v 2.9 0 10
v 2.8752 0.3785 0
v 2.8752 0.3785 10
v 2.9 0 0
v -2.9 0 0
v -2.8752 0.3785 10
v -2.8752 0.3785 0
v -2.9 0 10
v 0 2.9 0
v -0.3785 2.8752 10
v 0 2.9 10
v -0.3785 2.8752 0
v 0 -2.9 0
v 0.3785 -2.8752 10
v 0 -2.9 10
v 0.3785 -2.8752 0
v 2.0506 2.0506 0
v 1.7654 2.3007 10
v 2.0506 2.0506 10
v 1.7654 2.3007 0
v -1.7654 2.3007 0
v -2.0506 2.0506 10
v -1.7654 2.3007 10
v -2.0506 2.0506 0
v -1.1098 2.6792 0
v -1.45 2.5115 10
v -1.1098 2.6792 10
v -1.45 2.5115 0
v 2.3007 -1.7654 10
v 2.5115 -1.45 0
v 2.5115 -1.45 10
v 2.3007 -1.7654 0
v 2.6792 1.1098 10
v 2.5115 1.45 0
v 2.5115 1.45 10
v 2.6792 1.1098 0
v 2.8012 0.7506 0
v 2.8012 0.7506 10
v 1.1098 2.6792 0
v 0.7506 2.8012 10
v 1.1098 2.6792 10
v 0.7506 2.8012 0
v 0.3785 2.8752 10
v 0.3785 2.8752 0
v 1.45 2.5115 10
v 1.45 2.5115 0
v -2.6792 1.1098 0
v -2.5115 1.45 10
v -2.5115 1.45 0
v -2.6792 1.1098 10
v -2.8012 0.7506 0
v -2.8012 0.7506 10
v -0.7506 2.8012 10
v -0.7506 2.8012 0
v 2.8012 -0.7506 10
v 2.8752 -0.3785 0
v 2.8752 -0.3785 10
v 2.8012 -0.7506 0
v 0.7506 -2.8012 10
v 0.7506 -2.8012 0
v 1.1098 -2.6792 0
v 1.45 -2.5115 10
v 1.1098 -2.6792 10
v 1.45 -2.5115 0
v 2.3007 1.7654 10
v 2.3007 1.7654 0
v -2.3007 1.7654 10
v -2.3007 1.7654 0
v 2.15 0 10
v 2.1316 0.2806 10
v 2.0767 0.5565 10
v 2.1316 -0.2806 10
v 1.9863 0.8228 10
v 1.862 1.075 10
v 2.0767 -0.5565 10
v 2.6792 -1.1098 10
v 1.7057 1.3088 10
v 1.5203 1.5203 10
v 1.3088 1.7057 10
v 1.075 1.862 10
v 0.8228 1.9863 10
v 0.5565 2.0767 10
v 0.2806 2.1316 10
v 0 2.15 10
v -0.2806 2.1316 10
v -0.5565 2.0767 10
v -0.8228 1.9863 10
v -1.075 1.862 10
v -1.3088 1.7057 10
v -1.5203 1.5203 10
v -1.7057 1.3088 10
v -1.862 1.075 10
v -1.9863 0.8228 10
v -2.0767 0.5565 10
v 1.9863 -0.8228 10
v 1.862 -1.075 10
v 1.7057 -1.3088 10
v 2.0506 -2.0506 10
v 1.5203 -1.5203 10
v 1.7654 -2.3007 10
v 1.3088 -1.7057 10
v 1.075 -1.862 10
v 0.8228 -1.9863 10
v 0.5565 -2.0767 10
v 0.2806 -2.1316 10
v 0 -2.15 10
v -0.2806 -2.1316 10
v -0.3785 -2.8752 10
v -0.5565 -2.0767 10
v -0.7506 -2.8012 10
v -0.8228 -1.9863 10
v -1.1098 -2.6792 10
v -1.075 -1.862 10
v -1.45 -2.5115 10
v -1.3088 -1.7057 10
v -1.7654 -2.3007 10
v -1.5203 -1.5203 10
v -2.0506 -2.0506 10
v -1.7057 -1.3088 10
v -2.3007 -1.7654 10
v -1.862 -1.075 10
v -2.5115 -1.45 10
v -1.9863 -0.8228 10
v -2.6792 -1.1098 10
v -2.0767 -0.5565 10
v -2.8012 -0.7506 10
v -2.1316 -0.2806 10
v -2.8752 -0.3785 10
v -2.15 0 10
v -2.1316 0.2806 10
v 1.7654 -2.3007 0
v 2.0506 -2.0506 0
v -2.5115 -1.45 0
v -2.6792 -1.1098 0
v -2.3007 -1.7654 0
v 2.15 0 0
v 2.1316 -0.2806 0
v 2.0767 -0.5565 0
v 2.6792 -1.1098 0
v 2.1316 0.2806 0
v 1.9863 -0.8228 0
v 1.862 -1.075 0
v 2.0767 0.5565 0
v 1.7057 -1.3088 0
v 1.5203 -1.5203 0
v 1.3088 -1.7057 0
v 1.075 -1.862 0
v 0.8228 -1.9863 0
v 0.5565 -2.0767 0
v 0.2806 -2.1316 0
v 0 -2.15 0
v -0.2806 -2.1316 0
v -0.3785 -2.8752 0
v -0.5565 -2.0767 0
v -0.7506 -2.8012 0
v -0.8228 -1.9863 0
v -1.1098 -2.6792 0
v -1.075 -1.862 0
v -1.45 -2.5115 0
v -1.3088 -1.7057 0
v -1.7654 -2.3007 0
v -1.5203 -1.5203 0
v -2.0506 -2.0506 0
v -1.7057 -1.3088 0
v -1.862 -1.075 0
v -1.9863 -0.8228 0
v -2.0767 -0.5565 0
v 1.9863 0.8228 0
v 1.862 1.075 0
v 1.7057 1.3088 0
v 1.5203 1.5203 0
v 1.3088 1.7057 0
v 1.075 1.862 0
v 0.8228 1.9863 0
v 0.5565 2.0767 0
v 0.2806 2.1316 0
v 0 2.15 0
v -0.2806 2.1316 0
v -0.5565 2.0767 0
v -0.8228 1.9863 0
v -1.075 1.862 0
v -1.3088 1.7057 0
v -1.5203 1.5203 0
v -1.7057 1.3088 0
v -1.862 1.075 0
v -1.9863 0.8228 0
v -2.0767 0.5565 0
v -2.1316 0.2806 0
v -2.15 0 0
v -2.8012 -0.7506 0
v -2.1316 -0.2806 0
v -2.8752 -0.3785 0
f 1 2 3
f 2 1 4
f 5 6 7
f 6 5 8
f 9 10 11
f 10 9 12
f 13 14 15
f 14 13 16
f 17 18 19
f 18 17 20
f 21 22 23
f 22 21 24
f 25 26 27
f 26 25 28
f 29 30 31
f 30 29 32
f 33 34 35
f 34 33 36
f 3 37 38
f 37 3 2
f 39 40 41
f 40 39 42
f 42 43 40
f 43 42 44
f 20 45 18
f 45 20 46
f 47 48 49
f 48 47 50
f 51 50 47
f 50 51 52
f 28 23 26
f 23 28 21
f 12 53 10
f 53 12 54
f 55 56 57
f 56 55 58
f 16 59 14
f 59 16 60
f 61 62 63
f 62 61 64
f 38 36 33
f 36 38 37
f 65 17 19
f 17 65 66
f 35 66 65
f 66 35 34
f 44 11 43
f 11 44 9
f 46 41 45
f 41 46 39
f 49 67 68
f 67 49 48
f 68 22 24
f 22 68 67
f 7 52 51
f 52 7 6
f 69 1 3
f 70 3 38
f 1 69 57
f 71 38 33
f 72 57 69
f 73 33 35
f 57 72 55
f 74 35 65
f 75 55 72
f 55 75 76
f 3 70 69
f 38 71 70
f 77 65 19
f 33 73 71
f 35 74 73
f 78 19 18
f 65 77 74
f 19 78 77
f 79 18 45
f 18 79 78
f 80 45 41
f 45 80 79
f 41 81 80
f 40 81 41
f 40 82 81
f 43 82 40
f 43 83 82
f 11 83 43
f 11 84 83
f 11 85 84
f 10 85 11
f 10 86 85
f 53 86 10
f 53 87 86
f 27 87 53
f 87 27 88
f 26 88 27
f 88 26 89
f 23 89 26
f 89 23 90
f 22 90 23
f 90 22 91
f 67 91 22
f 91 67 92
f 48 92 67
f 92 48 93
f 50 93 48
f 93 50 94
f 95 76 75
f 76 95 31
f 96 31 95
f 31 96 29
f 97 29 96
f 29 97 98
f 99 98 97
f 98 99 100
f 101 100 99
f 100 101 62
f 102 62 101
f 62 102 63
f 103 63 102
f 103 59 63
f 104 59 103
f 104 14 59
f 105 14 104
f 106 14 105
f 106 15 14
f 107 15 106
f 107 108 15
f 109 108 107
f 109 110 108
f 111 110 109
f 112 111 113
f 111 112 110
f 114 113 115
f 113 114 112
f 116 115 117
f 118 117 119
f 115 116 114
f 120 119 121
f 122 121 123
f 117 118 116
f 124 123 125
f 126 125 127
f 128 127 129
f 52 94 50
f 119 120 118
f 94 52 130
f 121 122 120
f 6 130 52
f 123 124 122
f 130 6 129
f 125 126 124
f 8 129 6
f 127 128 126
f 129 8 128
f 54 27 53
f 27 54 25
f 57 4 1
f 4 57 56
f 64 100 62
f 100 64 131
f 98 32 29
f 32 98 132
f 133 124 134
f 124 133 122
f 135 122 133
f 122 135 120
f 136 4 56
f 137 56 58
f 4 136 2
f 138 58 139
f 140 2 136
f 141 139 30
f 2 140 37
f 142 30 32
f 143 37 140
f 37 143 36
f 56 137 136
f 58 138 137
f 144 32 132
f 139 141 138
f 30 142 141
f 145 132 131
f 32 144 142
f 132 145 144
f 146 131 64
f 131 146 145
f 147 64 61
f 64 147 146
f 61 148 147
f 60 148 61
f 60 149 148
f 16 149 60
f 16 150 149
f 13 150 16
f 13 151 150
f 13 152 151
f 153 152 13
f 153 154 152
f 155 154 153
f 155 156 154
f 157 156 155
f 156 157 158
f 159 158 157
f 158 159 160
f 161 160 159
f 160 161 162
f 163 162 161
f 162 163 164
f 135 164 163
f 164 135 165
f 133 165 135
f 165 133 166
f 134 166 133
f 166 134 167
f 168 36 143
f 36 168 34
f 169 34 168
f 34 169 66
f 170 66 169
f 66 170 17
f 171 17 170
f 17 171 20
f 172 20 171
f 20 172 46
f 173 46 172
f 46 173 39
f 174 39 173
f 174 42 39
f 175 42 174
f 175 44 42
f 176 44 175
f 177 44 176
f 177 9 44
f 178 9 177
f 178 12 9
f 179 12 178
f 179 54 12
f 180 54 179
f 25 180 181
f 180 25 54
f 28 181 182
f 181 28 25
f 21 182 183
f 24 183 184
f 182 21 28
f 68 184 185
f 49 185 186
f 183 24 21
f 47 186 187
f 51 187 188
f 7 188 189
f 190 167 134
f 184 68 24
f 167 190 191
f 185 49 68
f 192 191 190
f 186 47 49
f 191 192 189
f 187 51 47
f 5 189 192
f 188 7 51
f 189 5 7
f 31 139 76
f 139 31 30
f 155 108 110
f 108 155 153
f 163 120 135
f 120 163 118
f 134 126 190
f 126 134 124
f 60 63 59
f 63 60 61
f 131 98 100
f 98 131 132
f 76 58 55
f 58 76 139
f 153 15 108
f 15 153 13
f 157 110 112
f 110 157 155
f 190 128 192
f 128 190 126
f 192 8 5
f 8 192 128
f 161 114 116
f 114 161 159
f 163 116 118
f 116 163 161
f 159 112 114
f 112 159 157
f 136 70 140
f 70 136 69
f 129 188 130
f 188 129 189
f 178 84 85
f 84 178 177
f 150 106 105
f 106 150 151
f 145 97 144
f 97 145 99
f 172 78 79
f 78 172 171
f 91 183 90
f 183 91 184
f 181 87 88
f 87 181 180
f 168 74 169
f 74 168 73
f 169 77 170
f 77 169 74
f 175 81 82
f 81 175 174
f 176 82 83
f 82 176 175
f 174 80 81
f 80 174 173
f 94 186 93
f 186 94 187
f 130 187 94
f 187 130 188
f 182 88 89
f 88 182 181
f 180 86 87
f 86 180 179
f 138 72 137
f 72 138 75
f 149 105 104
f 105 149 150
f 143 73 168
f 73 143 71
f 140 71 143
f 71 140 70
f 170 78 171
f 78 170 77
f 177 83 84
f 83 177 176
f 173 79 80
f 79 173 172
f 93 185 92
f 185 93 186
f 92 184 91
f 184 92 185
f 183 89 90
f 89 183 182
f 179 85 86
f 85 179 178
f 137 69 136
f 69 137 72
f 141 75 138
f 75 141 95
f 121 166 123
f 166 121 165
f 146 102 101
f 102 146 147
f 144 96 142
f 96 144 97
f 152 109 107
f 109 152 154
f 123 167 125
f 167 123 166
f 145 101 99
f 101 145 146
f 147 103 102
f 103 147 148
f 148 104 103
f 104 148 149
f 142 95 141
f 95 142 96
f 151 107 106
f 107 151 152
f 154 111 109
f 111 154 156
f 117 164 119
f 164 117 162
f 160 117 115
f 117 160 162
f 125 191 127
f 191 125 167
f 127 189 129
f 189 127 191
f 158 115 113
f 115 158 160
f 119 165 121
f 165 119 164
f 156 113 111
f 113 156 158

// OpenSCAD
// file: hobby-joint-common.scad
// Rev A local joint datum: rotation axis at x=y=0, axial direction +z.
$fn=48;
shaft_x=-10.35;
horn_z=50;
front_t=5;
rear_top=-16.2;
rear_t=7;
bridge_r=58;
bridge_length=horn_z-rear_top;
bridge_pitch=14;
seat_d=13.2;
seat_depth=5.2;
module bridge_holes(h) {
    for(y=[-bridge_pitch/2,bridge_pitch/2])
        translate([-bridge_r,y,-1]) cylinder(d=3.5,h=h+2);
}
module arm_blank(t) {
    linear_extrude(t) hull() {
        circle(d=32);
        translate([-bridge_r,0]) square([12,26],center=true);
    }
}
module arm_window(t) {
    translate([0,0,-1]) linear_extrude(t+2) hull()
        for(x=[-40,-25]) translate([x,0]) circle(d=10);
}
// file: hobby-joint-bearing-parts.scad
include <hobby-joint-common.scad>
part="retainer"; // retainer, front-spacer, rear-spacer
module bearing_spacer(h) {
    difference() {
        cylinder(d=5.8,h=h);
        translate([0,0,-1]) cylinder(d=4.3,h=h+2);
    }
}
module bearing_retainer() {
    difference() {
        linear_extrude(3) hull() {
            circle(d=18);
            for(y=[-11,11]) translate([0,y]) circle(d=9);
        }
        translate([0,0,-1]) cylinder(d=10,h=5);
        for(y=[-11,11]) translate([0,y,-1]) cylinder(d=3.5,h=5);
    }
}
if(part=="retainer") bearing_retainer();
else if(part=="front-spacer") bearing_spacer(8);
else if(part=="rear-spacer") bearing_spacer(3);
else assert(false,"Unknown bearing-part selector");
// main file
use <hobby-joint-bearing-parts.scad>
// Stationary inner-ring spacer; substitute commodity metal if printing fails.
bearing_spacer(10);
